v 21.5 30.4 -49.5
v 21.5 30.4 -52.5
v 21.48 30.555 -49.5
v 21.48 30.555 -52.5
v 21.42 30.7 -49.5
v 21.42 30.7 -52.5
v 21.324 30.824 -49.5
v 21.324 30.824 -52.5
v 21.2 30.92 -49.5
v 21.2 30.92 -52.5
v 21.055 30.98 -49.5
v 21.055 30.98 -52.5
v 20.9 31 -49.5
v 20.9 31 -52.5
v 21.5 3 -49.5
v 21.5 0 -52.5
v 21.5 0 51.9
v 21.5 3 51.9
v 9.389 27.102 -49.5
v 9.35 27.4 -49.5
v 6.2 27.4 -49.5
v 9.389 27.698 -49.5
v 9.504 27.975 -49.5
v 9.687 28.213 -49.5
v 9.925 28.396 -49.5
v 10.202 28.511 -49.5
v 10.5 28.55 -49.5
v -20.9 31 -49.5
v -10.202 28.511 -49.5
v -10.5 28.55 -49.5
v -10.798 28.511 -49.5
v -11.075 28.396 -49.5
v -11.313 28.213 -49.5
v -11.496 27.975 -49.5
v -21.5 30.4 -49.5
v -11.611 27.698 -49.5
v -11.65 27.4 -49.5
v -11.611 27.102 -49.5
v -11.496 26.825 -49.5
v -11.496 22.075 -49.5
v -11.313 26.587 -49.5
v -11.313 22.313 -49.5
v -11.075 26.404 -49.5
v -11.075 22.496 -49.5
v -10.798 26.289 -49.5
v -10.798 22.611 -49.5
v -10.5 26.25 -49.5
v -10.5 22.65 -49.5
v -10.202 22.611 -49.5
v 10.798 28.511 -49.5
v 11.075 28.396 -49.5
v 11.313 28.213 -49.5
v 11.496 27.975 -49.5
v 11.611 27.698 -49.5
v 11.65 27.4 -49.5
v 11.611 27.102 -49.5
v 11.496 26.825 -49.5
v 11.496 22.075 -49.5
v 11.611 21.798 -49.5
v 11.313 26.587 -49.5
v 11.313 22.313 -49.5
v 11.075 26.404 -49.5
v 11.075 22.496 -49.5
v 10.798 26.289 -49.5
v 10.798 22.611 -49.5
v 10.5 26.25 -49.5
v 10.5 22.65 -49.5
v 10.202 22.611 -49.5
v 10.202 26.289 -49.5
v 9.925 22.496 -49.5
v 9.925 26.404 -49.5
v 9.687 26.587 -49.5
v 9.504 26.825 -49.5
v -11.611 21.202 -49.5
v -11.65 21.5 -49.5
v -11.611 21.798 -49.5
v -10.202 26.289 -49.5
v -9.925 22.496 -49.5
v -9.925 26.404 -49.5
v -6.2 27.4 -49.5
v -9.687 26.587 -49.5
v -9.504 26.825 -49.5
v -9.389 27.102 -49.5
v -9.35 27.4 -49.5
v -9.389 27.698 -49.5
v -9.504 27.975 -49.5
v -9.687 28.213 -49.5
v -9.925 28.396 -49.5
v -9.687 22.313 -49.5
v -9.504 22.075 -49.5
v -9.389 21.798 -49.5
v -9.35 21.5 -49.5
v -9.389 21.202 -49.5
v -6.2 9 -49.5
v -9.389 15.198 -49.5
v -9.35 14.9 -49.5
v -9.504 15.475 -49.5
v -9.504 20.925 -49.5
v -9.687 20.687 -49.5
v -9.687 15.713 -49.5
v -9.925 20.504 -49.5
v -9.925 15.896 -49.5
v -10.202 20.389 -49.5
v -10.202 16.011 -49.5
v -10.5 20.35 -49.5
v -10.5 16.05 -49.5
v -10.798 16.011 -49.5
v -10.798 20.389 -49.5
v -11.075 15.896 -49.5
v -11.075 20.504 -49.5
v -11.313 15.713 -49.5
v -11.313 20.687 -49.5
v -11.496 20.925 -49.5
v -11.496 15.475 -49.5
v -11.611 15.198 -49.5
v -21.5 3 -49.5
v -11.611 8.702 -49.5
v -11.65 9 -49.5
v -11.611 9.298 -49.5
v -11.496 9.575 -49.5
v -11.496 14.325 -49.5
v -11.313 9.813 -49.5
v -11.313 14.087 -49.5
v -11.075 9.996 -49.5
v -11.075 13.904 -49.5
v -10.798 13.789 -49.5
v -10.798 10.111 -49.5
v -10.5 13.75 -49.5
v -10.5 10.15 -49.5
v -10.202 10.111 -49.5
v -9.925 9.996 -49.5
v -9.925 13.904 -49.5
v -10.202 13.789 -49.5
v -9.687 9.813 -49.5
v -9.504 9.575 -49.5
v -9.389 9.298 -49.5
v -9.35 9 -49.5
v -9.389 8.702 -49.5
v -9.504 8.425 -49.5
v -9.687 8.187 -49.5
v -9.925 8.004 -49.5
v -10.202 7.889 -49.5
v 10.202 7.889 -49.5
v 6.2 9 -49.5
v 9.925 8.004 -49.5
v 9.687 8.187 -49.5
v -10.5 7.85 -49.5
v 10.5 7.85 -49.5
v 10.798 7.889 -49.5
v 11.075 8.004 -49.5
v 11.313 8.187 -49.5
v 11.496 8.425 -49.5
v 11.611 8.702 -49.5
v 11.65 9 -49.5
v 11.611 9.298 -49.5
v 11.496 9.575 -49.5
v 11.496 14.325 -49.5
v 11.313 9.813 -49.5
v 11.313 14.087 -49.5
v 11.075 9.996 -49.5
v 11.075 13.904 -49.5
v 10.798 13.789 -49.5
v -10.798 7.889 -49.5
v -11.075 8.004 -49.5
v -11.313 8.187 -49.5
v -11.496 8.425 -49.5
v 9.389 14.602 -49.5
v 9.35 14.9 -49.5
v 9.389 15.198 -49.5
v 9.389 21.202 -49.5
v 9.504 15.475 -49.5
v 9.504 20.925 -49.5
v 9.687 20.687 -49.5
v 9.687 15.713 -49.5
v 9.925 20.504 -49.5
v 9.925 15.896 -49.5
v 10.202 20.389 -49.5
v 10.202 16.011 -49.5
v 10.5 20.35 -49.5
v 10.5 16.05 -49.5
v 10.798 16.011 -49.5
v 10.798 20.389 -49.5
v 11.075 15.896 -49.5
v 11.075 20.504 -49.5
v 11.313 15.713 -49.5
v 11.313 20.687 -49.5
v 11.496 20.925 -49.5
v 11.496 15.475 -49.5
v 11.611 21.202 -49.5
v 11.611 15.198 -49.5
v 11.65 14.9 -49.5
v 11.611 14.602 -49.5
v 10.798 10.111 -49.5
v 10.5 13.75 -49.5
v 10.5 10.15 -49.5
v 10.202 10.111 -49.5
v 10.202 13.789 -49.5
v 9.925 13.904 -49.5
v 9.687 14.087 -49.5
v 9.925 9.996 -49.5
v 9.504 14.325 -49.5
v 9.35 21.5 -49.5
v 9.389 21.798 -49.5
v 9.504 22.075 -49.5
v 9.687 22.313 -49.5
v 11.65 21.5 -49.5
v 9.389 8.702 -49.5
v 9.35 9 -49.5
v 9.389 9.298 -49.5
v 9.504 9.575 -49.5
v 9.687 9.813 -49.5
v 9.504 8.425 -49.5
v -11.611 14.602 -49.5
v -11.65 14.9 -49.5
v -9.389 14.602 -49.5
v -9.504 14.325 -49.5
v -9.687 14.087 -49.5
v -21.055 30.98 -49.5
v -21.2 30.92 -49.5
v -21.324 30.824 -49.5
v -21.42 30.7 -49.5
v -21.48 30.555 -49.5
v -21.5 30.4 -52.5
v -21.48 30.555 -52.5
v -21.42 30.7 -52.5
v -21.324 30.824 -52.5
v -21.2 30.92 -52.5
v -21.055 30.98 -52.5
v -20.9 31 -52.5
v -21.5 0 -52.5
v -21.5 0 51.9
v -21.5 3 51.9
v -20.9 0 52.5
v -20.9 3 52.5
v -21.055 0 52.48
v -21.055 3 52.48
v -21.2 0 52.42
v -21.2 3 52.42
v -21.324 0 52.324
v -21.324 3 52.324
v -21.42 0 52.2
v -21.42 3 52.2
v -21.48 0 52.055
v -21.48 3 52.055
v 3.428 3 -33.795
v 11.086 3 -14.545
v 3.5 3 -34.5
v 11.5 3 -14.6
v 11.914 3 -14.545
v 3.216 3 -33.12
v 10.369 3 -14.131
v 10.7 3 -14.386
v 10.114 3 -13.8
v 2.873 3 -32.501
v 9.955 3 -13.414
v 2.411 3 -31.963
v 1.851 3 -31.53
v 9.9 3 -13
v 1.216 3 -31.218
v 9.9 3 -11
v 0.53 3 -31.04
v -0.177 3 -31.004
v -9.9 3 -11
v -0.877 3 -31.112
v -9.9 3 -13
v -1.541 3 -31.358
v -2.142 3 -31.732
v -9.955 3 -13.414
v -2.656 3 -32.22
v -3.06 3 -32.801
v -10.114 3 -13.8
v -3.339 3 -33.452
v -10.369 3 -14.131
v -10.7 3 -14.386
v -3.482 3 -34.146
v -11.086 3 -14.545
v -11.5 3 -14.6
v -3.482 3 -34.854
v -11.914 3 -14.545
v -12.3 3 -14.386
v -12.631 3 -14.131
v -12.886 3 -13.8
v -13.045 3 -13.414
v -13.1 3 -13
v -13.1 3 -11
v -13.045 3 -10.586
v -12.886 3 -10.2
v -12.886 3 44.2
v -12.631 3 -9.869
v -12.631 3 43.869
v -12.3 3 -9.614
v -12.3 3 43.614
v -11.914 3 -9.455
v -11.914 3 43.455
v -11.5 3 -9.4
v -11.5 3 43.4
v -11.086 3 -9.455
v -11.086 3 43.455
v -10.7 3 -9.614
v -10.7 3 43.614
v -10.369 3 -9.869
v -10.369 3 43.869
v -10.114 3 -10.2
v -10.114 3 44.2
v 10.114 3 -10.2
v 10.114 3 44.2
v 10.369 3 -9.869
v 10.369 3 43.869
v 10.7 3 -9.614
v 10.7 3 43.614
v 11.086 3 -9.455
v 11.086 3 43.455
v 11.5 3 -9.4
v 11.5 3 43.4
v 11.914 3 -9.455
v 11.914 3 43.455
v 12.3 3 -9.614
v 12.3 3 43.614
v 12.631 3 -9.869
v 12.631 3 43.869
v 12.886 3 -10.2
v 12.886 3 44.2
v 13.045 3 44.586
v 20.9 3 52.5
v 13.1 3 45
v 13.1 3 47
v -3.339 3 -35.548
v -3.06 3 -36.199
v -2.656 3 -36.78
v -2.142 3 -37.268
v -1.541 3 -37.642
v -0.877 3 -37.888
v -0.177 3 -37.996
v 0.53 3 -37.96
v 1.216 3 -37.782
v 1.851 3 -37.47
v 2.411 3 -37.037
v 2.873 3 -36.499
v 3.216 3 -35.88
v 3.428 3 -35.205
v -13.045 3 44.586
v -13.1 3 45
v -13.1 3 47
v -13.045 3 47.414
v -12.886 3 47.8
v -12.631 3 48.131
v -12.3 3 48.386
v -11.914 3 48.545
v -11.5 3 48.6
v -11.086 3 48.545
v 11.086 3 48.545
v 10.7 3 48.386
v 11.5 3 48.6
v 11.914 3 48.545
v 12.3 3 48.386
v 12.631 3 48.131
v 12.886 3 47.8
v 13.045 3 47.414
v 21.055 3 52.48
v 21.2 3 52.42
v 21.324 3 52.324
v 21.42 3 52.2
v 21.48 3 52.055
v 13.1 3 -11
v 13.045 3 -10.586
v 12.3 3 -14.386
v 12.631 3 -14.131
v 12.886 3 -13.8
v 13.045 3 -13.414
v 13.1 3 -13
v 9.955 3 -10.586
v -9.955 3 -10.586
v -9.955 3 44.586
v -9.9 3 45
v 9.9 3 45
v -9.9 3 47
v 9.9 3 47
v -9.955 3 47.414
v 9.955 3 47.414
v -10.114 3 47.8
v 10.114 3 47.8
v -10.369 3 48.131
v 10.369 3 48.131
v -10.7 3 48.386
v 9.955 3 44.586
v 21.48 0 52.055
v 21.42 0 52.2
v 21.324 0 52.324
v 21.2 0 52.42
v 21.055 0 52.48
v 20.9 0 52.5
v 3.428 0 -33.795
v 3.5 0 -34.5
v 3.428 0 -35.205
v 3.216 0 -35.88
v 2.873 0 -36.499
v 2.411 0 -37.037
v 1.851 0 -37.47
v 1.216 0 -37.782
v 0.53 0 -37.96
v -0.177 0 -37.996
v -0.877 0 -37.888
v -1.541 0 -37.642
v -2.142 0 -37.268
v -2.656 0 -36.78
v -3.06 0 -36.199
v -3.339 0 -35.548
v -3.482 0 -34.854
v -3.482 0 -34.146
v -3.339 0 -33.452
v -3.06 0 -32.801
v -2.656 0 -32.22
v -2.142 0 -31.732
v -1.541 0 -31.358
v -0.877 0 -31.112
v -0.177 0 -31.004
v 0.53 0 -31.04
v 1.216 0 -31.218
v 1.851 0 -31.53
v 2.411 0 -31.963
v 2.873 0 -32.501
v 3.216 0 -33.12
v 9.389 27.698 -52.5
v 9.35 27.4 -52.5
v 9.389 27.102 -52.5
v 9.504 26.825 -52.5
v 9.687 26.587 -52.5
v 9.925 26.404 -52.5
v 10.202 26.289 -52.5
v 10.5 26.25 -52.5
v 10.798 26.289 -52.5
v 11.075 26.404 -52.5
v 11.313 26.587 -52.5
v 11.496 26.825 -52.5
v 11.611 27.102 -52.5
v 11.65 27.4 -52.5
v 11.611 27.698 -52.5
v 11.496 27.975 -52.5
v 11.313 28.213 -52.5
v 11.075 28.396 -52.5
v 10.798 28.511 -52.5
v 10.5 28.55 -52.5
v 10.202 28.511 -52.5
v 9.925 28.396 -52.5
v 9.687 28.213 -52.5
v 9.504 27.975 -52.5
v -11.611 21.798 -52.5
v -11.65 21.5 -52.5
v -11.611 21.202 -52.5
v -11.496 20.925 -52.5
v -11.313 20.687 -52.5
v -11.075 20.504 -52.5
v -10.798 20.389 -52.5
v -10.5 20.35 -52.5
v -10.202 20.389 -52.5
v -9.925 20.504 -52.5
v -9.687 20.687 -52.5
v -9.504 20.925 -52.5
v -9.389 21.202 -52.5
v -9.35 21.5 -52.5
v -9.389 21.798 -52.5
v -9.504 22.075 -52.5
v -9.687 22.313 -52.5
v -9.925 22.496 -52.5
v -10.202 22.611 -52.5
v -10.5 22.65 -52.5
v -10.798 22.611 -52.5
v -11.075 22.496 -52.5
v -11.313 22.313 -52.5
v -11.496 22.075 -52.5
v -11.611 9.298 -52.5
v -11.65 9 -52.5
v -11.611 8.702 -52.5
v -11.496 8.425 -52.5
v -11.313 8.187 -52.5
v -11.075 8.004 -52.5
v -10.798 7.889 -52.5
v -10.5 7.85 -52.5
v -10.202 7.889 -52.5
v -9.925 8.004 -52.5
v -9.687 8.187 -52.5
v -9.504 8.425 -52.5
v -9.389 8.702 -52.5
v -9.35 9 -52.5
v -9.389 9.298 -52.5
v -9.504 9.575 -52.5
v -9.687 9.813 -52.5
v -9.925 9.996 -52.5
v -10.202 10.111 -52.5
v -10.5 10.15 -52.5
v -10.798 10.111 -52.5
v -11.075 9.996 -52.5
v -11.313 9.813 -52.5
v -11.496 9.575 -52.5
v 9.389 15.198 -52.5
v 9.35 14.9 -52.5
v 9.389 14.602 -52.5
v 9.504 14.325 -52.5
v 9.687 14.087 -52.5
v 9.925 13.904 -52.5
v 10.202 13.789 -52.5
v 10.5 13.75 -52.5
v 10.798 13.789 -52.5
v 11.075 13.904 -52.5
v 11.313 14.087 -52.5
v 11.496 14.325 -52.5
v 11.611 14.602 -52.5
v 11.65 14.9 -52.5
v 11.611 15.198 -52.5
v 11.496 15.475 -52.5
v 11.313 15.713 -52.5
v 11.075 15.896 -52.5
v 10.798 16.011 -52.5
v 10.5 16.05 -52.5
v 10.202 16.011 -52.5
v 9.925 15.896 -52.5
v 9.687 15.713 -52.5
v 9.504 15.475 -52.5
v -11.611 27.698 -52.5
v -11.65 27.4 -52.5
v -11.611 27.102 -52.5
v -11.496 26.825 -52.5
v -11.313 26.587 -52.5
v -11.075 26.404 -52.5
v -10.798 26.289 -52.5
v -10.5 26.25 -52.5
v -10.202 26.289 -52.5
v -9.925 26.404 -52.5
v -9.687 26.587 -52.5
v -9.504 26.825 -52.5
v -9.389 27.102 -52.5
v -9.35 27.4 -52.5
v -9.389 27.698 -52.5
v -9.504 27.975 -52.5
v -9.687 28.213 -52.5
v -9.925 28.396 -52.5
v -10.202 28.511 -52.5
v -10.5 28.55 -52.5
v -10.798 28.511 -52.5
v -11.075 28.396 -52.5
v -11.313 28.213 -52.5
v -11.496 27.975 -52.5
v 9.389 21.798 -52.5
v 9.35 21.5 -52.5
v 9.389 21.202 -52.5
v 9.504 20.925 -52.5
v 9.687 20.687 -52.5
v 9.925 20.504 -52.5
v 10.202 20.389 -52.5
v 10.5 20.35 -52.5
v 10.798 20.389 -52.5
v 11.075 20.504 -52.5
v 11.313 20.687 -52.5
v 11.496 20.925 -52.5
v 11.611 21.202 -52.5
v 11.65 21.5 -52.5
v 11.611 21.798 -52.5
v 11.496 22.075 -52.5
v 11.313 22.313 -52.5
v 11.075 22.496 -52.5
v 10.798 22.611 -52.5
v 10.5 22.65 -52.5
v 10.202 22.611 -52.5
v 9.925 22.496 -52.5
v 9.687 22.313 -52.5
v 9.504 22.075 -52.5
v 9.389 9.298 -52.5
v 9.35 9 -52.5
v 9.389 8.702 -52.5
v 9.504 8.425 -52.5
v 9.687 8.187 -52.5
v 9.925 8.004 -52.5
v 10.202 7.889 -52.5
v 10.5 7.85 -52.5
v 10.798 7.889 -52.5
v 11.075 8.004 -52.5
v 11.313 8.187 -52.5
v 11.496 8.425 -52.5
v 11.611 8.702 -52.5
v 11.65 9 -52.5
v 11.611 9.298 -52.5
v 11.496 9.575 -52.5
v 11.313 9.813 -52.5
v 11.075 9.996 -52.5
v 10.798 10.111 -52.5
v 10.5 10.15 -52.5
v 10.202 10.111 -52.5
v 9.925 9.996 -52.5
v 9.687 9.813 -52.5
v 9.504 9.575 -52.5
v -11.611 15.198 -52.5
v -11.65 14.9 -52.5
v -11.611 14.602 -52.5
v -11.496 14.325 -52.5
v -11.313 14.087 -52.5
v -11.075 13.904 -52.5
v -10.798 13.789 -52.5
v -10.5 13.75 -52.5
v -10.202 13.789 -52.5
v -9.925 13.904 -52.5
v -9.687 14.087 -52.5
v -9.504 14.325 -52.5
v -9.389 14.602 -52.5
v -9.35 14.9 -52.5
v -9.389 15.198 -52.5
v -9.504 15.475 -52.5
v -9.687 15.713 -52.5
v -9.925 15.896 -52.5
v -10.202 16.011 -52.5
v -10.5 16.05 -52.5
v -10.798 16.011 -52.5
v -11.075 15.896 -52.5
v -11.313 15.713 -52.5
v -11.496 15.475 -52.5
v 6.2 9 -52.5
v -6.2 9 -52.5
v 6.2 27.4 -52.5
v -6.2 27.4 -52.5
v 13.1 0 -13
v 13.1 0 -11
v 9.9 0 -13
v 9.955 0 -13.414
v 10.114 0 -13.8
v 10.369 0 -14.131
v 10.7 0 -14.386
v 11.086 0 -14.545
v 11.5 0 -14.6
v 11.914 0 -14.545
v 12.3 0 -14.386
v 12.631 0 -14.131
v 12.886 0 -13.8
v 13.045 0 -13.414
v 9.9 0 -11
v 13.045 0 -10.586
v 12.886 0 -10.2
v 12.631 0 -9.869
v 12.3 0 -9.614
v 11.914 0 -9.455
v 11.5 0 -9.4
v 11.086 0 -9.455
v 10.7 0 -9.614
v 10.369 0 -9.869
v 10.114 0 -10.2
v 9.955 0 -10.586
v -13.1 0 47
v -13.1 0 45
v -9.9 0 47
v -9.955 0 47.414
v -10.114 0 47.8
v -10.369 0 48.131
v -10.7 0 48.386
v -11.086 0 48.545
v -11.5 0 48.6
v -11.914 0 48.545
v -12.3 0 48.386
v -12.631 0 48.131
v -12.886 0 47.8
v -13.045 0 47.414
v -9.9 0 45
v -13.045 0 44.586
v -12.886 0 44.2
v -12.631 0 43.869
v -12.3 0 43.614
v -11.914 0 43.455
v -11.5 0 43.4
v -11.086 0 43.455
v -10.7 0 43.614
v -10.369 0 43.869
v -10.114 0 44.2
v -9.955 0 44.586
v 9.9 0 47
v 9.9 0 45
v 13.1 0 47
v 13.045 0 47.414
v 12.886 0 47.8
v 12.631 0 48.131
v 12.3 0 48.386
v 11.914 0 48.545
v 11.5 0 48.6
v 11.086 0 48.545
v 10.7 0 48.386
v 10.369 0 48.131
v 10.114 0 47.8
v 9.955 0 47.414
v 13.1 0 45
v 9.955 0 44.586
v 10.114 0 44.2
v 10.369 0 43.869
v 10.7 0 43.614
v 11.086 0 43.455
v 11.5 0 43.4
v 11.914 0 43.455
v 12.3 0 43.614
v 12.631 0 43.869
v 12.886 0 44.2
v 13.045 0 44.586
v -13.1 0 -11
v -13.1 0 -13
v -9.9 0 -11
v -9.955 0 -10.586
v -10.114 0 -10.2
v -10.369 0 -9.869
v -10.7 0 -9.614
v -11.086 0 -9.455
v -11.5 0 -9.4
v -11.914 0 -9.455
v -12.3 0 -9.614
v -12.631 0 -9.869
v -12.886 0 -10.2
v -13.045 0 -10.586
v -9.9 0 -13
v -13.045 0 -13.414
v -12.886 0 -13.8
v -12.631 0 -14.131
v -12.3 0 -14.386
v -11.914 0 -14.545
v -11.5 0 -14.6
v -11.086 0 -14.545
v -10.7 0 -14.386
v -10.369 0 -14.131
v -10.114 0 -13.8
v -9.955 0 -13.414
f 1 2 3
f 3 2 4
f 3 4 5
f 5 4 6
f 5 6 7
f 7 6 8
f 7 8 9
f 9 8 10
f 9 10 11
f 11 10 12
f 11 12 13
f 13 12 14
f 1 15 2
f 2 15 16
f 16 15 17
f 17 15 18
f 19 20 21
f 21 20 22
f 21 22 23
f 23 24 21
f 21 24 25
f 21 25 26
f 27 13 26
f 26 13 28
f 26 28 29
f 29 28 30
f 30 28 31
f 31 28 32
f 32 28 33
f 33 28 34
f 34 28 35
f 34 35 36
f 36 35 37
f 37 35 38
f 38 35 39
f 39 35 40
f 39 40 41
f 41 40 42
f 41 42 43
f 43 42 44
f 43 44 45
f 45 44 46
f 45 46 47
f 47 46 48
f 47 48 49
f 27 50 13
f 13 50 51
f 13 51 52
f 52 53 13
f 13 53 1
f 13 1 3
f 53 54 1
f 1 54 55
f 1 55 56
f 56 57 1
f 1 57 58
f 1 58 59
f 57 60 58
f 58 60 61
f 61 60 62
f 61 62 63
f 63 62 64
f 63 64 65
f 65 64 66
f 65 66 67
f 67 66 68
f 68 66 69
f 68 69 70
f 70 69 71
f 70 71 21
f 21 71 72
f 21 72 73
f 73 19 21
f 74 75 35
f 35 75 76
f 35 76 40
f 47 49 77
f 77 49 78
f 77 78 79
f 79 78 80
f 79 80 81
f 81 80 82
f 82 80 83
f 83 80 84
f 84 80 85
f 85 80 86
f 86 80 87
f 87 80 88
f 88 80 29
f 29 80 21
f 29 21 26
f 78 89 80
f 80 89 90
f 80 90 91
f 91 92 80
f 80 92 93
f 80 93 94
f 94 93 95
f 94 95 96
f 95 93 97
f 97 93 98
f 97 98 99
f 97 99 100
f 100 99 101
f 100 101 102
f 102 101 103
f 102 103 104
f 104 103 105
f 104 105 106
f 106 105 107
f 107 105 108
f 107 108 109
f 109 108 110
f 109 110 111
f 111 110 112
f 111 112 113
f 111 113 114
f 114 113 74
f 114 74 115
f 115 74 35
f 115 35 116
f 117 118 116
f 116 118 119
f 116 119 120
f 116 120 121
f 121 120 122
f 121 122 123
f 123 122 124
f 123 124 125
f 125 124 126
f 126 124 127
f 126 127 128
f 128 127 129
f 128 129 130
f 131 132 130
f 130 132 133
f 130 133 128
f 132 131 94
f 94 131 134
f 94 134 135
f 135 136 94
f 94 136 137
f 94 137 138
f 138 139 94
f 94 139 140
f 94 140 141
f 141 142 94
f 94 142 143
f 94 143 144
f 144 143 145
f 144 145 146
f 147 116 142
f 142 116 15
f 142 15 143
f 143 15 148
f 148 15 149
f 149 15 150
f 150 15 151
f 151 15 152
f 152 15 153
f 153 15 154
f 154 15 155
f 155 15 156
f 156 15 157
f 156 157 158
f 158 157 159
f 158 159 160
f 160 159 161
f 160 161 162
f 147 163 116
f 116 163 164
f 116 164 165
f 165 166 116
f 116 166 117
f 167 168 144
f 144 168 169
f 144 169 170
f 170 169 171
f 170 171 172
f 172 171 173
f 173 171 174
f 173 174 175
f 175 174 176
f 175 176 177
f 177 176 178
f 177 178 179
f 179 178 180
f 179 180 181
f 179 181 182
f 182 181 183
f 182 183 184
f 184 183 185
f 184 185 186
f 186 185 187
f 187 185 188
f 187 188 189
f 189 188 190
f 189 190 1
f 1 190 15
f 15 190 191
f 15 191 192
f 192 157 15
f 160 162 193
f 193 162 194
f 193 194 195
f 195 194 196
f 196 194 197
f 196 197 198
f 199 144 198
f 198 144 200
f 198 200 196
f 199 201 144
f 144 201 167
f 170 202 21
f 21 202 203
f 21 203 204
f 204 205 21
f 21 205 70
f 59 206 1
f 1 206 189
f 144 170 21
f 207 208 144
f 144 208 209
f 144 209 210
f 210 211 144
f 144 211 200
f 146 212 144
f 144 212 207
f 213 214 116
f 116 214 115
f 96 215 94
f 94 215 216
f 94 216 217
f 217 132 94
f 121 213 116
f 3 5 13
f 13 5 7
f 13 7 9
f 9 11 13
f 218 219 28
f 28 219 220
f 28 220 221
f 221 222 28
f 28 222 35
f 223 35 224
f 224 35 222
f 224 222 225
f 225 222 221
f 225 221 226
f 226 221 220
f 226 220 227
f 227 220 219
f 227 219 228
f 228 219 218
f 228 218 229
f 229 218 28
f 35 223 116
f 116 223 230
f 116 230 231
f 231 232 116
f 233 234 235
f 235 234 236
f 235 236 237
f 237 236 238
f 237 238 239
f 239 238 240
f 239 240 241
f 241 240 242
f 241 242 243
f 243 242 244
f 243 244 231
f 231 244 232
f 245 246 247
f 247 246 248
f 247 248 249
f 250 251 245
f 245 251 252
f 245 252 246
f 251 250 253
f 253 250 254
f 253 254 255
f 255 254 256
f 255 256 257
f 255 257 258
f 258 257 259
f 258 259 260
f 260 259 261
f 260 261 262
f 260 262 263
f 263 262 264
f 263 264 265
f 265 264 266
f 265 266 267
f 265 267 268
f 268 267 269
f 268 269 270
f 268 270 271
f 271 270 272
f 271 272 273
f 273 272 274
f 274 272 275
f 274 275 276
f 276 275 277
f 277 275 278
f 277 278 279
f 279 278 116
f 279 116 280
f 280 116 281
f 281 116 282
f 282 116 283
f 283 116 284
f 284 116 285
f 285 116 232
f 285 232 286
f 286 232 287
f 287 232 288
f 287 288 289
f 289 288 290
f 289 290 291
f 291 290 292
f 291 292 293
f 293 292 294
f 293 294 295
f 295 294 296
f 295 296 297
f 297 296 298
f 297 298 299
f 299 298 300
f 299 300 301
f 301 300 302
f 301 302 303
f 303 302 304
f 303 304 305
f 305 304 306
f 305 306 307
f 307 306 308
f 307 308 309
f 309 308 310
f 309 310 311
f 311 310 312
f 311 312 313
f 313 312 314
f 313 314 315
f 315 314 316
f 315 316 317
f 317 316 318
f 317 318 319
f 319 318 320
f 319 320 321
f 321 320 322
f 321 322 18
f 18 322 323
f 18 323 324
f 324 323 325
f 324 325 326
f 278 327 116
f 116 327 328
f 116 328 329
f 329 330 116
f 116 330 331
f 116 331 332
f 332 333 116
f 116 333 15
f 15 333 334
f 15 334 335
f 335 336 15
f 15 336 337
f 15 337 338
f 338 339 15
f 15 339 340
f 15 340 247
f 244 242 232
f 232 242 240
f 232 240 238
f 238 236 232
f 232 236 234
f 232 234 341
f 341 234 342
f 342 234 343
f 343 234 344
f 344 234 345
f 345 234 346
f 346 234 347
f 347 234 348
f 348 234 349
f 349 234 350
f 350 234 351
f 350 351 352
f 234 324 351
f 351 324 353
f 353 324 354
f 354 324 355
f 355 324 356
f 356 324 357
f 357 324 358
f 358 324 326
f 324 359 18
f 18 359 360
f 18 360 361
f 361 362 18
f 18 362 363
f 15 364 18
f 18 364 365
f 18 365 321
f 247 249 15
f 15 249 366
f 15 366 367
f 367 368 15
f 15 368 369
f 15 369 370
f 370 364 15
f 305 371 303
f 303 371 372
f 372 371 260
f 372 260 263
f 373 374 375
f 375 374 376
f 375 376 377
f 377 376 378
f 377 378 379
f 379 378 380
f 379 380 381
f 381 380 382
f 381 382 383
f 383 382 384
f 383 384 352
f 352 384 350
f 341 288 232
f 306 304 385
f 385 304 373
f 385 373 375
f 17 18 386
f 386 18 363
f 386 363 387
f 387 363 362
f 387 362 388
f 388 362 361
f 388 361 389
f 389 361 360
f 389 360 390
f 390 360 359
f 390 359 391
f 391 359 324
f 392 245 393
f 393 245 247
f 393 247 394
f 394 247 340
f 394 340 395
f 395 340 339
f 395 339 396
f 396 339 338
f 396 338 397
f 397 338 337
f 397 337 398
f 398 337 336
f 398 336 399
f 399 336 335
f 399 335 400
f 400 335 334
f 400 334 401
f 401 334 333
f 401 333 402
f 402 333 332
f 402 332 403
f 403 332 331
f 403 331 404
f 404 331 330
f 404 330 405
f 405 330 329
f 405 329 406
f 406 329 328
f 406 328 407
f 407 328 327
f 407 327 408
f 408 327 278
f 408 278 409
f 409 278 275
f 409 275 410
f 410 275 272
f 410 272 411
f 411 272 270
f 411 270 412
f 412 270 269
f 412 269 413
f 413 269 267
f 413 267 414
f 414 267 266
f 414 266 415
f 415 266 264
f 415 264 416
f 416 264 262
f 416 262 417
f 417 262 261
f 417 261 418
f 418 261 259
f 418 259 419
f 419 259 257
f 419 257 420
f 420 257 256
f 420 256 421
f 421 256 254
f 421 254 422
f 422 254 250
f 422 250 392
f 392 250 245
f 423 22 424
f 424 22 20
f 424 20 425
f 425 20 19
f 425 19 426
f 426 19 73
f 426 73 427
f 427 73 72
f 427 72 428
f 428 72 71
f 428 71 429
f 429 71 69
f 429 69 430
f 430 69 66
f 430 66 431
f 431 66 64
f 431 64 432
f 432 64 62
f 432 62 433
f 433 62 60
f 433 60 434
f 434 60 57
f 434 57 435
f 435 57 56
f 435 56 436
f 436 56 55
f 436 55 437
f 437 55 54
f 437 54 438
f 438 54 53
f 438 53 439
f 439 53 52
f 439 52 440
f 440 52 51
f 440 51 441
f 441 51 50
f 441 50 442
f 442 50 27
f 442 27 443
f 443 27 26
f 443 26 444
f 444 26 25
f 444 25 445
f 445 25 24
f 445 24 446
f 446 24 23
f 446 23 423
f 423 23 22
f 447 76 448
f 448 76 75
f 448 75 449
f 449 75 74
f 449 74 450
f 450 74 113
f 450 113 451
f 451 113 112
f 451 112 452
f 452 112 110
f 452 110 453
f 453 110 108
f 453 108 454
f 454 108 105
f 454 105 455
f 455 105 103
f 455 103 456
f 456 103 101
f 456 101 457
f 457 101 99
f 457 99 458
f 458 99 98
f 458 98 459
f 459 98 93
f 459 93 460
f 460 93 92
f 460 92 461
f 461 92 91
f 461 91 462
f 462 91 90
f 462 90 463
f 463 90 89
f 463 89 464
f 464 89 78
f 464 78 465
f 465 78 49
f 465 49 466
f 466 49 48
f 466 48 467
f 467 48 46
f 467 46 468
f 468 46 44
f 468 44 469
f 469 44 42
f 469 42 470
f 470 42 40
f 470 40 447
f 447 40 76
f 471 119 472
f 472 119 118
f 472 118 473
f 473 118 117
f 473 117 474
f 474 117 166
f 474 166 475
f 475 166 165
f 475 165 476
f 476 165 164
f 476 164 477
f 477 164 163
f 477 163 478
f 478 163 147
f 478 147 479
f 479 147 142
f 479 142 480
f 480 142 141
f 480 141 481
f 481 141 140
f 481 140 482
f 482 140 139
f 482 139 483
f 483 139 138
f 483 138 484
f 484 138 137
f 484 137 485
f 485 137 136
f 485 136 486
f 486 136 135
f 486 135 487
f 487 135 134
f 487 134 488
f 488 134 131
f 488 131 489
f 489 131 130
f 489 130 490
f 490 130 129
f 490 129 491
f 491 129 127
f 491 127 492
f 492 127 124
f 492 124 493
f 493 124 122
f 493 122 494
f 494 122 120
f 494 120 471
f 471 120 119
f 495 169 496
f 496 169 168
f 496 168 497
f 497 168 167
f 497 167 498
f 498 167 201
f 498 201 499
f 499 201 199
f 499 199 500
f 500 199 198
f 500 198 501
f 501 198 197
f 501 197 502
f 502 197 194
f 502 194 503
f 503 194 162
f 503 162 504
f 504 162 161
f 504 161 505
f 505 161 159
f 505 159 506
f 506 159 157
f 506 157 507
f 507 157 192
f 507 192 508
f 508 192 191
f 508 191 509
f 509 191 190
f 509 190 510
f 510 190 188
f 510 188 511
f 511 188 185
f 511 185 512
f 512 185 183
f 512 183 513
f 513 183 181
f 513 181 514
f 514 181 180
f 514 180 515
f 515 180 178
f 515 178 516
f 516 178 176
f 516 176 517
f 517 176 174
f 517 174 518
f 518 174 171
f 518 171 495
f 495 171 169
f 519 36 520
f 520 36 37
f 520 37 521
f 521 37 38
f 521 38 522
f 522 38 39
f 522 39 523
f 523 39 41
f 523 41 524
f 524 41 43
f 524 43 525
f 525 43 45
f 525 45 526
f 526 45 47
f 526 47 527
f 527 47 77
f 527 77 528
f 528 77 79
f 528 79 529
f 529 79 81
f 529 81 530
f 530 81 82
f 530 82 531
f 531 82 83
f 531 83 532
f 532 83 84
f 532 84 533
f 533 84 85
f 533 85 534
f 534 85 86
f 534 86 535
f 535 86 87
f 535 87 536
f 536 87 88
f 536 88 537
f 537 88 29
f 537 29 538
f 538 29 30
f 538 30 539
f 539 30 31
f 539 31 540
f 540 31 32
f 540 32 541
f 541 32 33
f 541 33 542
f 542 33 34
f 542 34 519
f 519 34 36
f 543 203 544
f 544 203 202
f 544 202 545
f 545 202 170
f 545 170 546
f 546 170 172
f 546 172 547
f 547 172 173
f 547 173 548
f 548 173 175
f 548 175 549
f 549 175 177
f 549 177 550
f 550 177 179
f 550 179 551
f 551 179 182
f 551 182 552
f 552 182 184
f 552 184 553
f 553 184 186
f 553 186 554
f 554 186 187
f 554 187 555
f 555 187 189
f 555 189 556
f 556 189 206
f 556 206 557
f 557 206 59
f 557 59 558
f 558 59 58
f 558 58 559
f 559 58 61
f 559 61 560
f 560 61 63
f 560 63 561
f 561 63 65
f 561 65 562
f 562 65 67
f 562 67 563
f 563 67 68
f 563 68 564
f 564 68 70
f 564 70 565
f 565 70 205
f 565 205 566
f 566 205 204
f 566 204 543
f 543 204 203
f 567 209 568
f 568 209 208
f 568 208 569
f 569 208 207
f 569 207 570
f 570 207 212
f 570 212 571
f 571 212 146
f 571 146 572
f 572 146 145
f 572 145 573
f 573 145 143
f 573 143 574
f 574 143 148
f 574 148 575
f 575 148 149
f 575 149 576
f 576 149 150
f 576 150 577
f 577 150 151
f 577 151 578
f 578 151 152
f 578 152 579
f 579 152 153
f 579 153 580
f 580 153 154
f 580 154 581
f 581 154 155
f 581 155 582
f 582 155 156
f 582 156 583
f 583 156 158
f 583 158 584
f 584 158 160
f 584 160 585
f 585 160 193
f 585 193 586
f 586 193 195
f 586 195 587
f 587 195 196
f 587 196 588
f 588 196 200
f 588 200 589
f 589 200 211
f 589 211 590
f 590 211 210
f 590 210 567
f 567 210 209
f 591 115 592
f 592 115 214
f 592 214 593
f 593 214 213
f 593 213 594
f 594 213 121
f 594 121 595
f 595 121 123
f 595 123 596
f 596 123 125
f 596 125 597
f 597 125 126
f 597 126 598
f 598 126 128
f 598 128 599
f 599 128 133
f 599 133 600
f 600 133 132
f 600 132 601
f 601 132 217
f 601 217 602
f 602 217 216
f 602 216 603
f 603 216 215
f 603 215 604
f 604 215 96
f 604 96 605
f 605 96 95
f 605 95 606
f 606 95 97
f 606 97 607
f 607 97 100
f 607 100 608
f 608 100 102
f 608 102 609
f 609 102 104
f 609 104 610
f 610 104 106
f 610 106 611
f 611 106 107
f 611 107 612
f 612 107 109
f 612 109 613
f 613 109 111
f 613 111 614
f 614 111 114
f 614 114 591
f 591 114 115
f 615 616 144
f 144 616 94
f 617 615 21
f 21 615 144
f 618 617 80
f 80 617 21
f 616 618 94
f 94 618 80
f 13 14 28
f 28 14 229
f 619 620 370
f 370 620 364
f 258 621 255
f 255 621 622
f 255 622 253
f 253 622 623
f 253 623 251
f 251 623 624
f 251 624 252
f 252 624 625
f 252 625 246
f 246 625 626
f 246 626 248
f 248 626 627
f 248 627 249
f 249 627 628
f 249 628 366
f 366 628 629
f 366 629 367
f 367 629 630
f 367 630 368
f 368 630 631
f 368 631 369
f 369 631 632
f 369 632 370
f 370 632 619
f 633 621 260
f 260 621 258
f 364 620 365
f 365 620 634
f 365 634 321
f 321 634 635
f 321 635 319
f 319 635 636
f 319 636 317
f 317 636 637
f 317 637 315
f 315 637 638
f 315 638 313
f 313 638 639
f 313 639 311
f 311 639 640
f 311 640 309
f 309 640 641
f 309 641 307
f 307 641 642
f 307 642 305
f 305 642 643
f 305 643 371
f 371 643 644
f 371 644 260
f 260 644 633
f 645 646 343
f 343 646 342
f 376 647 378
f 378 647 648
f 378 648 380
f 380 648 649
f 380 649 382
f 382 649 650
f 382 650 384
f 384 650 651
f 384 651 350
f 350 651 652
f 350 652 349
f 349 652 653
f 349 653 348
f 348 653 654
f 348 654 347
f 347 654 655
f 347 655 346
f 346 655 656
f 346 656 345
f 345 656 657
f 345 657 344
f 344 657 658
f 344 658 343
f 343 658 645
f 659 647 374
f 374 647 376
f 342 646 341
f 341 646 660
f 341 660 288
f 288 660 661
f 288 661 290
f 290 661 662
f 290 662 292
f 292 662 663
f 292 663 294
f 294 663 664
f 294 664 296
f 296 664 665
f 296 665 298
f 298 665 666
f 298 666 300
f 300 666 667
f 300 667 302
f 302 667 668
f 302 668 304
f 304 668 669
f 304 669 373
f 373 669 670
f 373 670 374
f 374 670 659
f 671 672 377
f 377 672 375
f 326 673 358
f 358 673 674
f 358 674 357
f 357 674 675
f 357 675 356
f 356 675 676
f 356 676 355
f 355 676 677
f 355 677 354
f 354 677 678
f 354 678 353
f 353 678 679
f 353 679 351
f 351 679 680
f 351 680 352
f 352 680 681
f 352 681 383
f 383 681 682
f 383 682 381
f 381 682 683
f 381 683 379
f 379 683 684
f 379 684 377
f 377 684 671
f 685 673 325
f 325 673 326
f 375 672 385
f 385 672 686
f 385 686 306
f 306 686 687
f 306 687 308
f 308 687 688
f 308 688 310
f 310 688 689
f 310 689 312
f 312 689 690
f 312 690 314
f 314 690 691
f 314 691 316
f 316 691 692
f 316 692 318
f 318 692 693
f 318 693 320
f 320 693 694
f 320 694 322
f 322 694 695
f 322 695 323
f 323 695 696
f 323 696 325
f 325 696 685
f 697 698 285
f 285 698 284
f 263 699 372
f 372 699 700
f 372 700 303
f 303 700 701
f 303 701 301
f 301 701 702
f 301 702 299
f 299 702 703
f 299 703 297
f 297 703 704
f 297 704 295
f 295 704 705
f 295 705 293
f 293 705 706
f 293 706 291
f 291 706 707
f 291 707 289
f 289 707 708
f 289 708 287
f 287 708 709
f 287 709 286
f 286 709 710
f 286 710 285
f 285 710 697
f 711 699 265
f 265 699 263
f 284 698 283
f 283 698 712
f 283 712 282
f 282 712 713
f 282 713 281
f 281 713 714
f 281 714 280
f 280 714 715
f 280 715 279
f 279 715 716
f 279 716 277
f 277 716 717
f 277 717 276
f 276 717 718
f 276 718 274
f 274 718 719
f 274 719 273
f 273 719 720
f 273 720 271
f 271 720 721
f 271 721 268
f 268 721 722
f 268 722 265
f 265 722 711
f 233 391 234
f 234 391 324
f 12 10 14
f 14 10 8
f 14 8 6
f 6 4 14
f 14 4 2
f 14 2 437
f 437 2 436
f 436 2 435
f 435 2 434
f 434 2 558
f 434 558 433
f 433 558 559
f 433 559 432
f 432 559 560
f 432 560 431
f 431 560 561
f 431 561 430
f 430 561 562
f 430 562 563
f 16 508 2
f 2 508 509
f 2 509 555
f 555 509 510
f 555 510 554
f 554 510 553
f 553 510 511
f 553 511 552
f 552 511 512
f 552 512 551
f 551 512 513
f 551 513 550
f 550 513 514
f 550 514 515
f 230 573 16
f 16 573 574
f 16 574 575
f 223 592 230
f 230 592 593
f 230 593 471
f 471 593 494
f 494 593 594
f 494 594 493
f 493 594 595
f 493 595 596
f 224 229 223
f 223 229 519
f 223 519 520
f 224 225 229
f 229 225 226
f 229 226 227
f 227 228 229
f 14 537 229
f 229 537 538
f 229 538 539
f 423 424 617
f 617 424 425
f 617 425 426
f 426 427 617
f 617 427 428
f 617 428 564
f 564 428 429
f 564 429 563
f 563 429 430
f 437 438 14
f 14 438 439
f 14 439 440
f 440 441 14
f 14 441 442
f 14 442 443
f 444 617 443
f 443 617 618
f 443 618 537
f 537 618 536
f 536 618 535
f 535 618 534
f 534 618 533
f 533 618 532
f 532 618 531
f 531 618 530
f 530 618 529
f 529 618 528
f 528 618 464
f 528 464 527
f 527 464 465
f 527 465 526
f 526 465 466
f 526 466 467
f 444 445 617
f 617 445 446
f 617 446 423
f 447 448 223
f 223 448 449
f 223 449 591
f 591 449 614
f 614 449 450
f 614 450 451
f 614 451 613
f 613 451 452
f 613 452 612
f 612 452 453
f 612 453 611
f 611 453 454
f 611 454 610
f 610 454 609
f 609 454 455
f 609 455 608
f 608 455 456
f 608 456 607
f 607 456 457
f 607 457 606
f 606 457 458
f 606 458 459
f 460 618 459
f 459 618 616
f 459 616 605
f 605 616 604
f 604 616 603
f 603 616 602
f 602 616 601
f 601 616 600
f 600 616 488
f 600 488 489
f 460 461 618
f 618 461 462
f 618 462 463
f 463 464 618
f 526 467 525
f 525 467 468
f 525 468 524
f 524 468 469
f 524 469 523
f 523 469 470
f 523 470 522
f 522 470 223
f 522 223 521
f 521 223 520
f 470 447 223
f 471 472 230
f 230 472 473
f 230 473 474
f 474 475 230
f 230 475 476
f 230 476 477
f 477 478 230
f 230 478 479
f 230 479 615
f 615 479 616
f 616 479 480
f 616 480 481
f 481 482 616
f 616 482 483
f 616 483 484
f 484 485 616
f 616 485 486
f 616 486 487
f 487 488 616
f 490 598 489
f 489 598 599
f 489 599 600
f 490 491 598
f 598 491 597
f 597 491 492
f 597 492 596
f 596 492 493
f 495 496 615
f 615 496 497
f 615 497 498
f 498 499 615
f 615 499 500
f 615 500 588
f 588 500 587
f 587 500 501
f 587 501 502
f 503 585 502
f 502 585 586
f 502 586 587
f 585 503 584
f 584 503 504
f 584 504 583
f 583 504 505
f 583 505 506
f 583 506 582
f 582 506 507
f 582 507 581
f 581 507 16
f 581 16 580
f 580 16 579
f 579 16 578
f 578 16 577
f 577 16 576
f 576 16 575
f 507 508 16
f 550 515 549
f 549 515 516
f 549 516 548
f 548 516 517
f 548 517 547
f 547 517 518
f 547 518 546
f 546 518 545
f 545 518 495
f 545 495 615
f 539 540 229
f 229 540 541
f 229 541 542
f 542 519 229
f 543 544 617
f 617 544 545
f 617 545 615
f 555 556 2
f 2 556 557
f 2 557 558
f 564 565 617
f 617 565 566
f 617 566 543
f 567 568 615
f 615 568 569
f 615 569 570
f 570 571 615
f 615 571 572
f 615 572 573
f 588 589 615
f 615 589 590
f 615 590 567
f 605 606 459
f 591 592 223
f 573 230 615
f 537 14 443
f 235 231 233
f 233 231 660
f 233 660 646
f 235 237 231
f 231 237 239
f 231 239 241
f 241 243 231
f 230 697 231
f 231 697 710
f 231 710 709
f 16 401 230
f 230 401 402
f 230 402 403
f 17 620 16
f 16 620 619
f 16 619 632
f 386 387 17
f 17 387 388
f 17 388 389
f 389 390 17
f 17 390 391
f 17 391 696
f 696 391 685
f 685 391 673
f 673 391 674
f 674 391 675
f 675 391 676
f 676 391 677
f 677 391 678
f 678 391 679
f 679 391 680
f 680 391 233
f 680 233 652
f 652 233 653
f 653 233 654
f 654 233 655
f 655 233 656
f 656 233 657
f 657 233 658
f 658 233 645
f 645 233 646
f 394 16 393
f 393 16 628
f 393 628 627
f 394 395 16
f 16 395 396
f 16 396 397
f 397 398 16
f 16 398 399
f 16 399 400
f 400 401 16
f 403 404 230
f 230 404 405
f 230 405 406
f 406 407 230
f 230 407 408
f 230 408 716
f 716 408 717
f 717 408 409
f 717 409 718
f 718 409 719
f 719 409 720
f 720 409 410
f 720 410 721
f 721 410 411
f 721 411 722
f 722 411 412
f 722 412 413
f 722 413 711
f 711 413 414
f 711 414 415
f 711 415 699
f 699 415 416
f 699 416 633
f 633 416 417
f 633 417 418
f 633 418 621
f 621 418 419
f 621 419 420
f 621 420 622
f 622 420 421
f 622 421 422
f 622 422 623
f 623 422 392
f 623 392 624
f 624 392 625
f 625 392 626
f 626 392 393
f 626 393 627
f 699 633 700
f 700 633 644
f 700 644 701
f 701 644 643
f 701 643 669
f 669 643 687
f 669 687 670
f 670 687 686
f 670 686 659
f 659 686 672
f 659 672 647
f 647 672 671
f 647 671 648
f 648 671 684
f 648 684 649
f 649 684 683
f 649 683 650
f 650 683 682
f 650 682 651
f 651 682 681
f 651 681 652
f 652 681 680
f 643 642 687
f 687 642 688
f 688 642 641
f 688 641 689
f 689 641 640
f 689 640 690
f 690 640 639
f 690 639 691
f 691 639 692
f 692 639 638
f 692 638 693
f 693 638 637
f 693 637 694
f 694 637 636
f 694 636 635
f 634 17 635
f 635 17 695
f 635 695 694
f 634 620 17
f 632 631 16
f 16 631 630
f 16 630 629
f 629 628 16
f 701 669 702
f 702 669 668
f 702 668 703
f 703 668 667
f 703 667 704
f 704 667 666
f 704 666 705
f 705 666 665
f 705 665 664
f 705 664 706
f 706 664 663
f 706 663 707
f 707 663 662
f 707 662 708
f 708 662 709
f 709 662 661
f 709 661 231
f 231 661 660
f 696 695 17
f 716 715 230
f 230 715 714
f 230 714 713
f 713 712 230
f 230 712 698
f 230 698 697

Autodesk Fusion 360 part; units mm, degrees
sketch "Sketch1" plane through (0, 0, 0) normal (0, 1, 0) x (1, 0, 0)
  line L0 (21.5, 52.5) -> (-21.5, 52.5)
  line L1 (-21.5, 52.5) -> (-21.5, -52.5)
  line L2 (-21.5, -52.5) -> (21.5, -52.5)
  line L3 (21.5, -52.5) -> (21.5, 52.5)
  line L4 (21.5, 52.5) -> (-21.5, -52.5) construction
  line L5 (-21.5, 52.5) -> (21.5, -52.5) construction
  dimension "d1" = 43
  dimension "d2" = 105
extrude "Extrude1" add sketch "Sketch1" along normal blind 3
sketch "Sketch2" plane through (0, 3, 0) normal (0, 1, 0) x (-1, 0, 0)
  line L0 (-21.5, 52.5) -> (-21.5, -52.5)
  line L1 (-21.5, -52.5) -> (21.5, -52.5)
  line L2 (21.5, -52.5) -> (21.5, 52.5)
  line L3 (21.5, 52.5) -> (-21.5, 52.5)
  line L4 (15, -14.5) -> (-15, -14.5) construction
  line L5 (-15, -14.5) -> (-15, 50.5) construction
  line L6 (-15, 50.5) -> (15, 50.5) construction
  line L7 (15, 50.5) -> (15, -14.5) construction
  line L8 (-13.1, 47) -> (-13.1, 45)
  arc A0 (-13.1, 45) -> (-9.9, 45) centre (-11.5, 45) ccw
  line L9 (-9.9, 45) -> (-9.9, 47)
  arc A1 (-9.9, 47) -> (-13.1, 47) centre (-11.5, 47) ccw
  line L10 (-11.5, 47) -> (-11.5, 45) construction
  line L11 (0, 20) -> (0, 2.5)
  arc A2 (13.1, 47) -> (9.9, 47) centre (11.5, 47) ccw
  line L12 (13.1, 47) -> (13.1, 45)
  line L13 (9.9, 45) -> (9.9, 47)
  arc A3 (9.9, 45) -> (13.1, 45) centre (11.5, 45) ccw
  line L14 (-15, 18) -> (15, 18) construction
  arc A4 (-9.9, -11) -> (-13.1, -11) centre (-11.5, -11) ccw
  line L15 (-13.1, -11) -> (-13.1, -13)
  line L16 (-9.9, -13) -> (-9.9, -11)
  arc A5 (-13.1, -13) -> (-9.9, -13) centre (-11.5, -13) ccw
  line L17 (0, 1.75) -> (0, 22.5)
  line L18 (9.9, -13) -> (9.9, -11)
  arc A6 (13.1, -11) -> (9.9, -11) centre (11.5, -11) ccw
  line L19 (13.1, -11) -> (13.1, -13)
  arc A7 (9.9, -13) -> (13.1, -13) centre (11.5, -13) ccw
  dimension "d10" = 30
  dimension "d11" = 65
  dimension "d12" = 2
  dimension "d13" = 6.5
  dimension "d15" = 2
  dimension "d16" = 3.2
  dimension "d17" = 3.5
  dimension "d18" = 3.5
  dimension "d19" = 2
  dimension "d20" = 3.2
  dimension "d21" = 56
extrude "Extrude2" cut sketch "Sketch2" against normal blind 4 contours L8 A0 L9 A1 | A2 L12 L13 A3 | A4 L15 L16 A5 | L18 A6 L19 A7
sketch "Sketch3" plane through (0, 3, 0) normal (0, 1, 0) x (-1, 0, 0)
  line L0 (-9.9, -11) -> (-9.9, -13)
  arc A0 (-13.1, -13) -> (-9.9, -13) centre (-11.5, -13) ccw
  line L1 (-13.1, -13) -> (-13.1, -11)
  arc A1 (-9.9, -11) -> (-13.1, -11) centre (-11.5, -11) ccw
  line L2 (-13.1, 45) -> (-13.1, 47)
  arc A2 (-9.9, 47) -> (-13.1, 47) centre (-11.5, 47) ccw
  line L3 (-9.9, 47) -> (-9.9, 45)
  arc A3 (-13.1, 45) -> (-9.9, 45) centre (-11.5, 45) ccw
  line L4 (9.9, 45) -> (9.9, 47)
  arc A4 (13.1, 47) -> (9.9, 47) centre (11.5, 47) ccw
  line L5 (13.1, 47) -> (13.1, 45)
  arc A5 (9.9, 45) -> (13.1, 45) centre (11.5, 45) ccw
  line L6 (-21.5, 52.5) -> (-21.5, -52.5)
  line L7 (-21.5, -52.5) -> (21.5, -52.5)
  line L8 (21.5, -52.5) -> (21.5, 52.5)
  line L9 (21.5, 52.5) -> (-21.5, 52.5)
  line L10 (-21.5, -52.5) -> (21.5, -52.5)
  line L11 (21.5, -52.5) -> (21.5, -49.5)
  line L12 (21.5, -49.5) -> (-21.5, -49.5)
  line L13 (-21.5, -49.5) -> (-21.5, -52.5)
  line L14 (9.9, -13) -> (9.9, -11)
  arc A6 (13.1, -11) -> (9.9, -11) centre (11.5, -11) ccw
  line L15 (13.1, -11) -> (13.1, -13)
  arc A7 (9.9, -13) -> (13.1, -13) centre (11.5, -13) ccw
  dimension "d24" = 3
extrude "Extrude3" add sketch "Sketch3" along normal blind 28 contours L6 L7 L8 L10 L11 L12 L13
sketch "Sketch4" plane through (0, 0, -49.5) normal (0, 0, 1) x (1, 0, 0)
  line L0 (-21.5, 3) -> (21.5, 3)
  line L1 (21.5, 3) -> (21.5, 31)
  line L2 (21.5, 31) -> (-21.5, 31)
  line L3 (-21.5, 31) -> (-21.5, 3)
  line L4 (6.2, 27.4) -> (-6.2, 27.4)
  line L5 (-6.2, 27.4) -> (-6.2, 9)
  line L6 (-6.2, 9) -> (6.2, 9)
  line L7 (6.2, 9) -> (6.2, 27.4)
  line L8 (0, 2.5) -> (0, 20)
  line L9 (-10.5, 27.4) -> (10.5, 27.4) construction
  circle A0 centre (-10.5, 27.4) radius 1.15
  circle A1 centre (10.5, 27.4) radius 1.15
  line L10 (-10.5, 14.9) -> (10.5, 14.9) construction
  circle A2 centre (-10.5, 14.9) radius 1.15
  circle A3 centre (10.5, 14.9) radius 1.15
  line L11 (-6.2, 18.2) -> (6.2, 18.2)
  circle A4 centre (10.5, 9) radius 1.15
  circle A5 centre (-10.5, 21.5) radius 1.15
  circle A6 centre (-10.5, 9) radius 1.15
  circle A7 centre (10.5, 21.5) radius 1.15
  line L12 (6.2, 27.4) -> (6.2, 9)
  line L13 (-6.2, 27.4) -> (6.2, 27.4)
  line L14 (-6.2, 9) -> (-6.2, 27.4)
  line L15 (6.2, 9) -> (-6.2, 9)
  dimension "d27" = 12.4
  dimension "d28" = 6.2
  dimension "d29" = 18.4
  dimension "d30" = 6
  dimension "d33" = 2.3
  dimension "d34" = 2.3
  dimension "d35" = 12.5
  dimension "d38" = 2.3
  dimension "d39" = 2.3
  dimension "d40" = 21
  dimension "d41" = 21
  dimension "d42" = 10.5
extrude "Extrude4" cut sketch "Sketch4" against normal up to surface (3 mm away) contours L5 L6 L8 L11 L14 L15 | L6 L7 L8 L11 L12 L15 | L4 L5 L7 L11 L12 L13 L14 | A0 | A1 | A2 | A3 | A4 | A5 | A6 | A7
sketch "Sketch5" plane through (0, 3, 0) normal (0, 1, 0) x (-1, 0, 0)
  line L0 (-21.5, 52.5) -> (-21.5, -49.5)
  line L1 (-21.5, -49.5) -> (21.5, -49.5)
  line L2 (21.5, -49.5) -> (21.5, 52.5)
  line L3 (-9.9, -11) -> (-9.9, -13)
  arc A0 (-13.1, -13) -> (-9.9, -13) centre (-11.5, -13) ccw
  line L4 (-13.1, -13) -> (-13.1, -11)
  arc A1 (-9.9, -11) -> (-13.1, -11) centre (-11.5, -11) ccw
  line L5 (-13.1, 45) -> (-13.1, 47)
  arc A2 (-9.9, 47) -> (-13.1, 47) centre (-11.5, 47) ccw
  line L6 (-9.9, 47) -> (-9.9, 45)
  arc A3 (-13.1, 45) -> (-9.9, 45) centre (-11.5, 45) ccw
  line L7 (9.9, 45) -> (9.9, 47)
  arc A4 (13.1, 47) -> (9.9, 47) centre (11.5, 47) ccw
  line L8 (13.1, 47) -> (13.1, 45)
  arc A5 (9.9, 45) -> (13.1, 45) centre (11.5, 45) ccw
  circle A6 centre (0, -34.5) radius 3.5
  line L9 (9.9, -13) -> (9.9, -11)
  arc A7 (13.1, -11) -> (9.9, -11) centre (11.5, -11) ccw
  line L10 (13.1, -11) -> (13.1, -13)
  arc A8 (9.9, -13) -> (13.1, -13) centre (11.5, -13) ccw
  line L11 (21.5, 52.5) -> (-21.5, 52.5)
  dimension "d49" = 7
  dimension "d55" = 15
extrude "Extrude6" cut sketch "Sketch5" against normal up to surface (3 mm away) contours A6
fillet "Fillet3" radius 0.6 4 edges at (21.5, 1.5, 52.5) (-21.5, 1.5, 52.5) (-21.5, 31, -51) (21.5, 31, -51)
